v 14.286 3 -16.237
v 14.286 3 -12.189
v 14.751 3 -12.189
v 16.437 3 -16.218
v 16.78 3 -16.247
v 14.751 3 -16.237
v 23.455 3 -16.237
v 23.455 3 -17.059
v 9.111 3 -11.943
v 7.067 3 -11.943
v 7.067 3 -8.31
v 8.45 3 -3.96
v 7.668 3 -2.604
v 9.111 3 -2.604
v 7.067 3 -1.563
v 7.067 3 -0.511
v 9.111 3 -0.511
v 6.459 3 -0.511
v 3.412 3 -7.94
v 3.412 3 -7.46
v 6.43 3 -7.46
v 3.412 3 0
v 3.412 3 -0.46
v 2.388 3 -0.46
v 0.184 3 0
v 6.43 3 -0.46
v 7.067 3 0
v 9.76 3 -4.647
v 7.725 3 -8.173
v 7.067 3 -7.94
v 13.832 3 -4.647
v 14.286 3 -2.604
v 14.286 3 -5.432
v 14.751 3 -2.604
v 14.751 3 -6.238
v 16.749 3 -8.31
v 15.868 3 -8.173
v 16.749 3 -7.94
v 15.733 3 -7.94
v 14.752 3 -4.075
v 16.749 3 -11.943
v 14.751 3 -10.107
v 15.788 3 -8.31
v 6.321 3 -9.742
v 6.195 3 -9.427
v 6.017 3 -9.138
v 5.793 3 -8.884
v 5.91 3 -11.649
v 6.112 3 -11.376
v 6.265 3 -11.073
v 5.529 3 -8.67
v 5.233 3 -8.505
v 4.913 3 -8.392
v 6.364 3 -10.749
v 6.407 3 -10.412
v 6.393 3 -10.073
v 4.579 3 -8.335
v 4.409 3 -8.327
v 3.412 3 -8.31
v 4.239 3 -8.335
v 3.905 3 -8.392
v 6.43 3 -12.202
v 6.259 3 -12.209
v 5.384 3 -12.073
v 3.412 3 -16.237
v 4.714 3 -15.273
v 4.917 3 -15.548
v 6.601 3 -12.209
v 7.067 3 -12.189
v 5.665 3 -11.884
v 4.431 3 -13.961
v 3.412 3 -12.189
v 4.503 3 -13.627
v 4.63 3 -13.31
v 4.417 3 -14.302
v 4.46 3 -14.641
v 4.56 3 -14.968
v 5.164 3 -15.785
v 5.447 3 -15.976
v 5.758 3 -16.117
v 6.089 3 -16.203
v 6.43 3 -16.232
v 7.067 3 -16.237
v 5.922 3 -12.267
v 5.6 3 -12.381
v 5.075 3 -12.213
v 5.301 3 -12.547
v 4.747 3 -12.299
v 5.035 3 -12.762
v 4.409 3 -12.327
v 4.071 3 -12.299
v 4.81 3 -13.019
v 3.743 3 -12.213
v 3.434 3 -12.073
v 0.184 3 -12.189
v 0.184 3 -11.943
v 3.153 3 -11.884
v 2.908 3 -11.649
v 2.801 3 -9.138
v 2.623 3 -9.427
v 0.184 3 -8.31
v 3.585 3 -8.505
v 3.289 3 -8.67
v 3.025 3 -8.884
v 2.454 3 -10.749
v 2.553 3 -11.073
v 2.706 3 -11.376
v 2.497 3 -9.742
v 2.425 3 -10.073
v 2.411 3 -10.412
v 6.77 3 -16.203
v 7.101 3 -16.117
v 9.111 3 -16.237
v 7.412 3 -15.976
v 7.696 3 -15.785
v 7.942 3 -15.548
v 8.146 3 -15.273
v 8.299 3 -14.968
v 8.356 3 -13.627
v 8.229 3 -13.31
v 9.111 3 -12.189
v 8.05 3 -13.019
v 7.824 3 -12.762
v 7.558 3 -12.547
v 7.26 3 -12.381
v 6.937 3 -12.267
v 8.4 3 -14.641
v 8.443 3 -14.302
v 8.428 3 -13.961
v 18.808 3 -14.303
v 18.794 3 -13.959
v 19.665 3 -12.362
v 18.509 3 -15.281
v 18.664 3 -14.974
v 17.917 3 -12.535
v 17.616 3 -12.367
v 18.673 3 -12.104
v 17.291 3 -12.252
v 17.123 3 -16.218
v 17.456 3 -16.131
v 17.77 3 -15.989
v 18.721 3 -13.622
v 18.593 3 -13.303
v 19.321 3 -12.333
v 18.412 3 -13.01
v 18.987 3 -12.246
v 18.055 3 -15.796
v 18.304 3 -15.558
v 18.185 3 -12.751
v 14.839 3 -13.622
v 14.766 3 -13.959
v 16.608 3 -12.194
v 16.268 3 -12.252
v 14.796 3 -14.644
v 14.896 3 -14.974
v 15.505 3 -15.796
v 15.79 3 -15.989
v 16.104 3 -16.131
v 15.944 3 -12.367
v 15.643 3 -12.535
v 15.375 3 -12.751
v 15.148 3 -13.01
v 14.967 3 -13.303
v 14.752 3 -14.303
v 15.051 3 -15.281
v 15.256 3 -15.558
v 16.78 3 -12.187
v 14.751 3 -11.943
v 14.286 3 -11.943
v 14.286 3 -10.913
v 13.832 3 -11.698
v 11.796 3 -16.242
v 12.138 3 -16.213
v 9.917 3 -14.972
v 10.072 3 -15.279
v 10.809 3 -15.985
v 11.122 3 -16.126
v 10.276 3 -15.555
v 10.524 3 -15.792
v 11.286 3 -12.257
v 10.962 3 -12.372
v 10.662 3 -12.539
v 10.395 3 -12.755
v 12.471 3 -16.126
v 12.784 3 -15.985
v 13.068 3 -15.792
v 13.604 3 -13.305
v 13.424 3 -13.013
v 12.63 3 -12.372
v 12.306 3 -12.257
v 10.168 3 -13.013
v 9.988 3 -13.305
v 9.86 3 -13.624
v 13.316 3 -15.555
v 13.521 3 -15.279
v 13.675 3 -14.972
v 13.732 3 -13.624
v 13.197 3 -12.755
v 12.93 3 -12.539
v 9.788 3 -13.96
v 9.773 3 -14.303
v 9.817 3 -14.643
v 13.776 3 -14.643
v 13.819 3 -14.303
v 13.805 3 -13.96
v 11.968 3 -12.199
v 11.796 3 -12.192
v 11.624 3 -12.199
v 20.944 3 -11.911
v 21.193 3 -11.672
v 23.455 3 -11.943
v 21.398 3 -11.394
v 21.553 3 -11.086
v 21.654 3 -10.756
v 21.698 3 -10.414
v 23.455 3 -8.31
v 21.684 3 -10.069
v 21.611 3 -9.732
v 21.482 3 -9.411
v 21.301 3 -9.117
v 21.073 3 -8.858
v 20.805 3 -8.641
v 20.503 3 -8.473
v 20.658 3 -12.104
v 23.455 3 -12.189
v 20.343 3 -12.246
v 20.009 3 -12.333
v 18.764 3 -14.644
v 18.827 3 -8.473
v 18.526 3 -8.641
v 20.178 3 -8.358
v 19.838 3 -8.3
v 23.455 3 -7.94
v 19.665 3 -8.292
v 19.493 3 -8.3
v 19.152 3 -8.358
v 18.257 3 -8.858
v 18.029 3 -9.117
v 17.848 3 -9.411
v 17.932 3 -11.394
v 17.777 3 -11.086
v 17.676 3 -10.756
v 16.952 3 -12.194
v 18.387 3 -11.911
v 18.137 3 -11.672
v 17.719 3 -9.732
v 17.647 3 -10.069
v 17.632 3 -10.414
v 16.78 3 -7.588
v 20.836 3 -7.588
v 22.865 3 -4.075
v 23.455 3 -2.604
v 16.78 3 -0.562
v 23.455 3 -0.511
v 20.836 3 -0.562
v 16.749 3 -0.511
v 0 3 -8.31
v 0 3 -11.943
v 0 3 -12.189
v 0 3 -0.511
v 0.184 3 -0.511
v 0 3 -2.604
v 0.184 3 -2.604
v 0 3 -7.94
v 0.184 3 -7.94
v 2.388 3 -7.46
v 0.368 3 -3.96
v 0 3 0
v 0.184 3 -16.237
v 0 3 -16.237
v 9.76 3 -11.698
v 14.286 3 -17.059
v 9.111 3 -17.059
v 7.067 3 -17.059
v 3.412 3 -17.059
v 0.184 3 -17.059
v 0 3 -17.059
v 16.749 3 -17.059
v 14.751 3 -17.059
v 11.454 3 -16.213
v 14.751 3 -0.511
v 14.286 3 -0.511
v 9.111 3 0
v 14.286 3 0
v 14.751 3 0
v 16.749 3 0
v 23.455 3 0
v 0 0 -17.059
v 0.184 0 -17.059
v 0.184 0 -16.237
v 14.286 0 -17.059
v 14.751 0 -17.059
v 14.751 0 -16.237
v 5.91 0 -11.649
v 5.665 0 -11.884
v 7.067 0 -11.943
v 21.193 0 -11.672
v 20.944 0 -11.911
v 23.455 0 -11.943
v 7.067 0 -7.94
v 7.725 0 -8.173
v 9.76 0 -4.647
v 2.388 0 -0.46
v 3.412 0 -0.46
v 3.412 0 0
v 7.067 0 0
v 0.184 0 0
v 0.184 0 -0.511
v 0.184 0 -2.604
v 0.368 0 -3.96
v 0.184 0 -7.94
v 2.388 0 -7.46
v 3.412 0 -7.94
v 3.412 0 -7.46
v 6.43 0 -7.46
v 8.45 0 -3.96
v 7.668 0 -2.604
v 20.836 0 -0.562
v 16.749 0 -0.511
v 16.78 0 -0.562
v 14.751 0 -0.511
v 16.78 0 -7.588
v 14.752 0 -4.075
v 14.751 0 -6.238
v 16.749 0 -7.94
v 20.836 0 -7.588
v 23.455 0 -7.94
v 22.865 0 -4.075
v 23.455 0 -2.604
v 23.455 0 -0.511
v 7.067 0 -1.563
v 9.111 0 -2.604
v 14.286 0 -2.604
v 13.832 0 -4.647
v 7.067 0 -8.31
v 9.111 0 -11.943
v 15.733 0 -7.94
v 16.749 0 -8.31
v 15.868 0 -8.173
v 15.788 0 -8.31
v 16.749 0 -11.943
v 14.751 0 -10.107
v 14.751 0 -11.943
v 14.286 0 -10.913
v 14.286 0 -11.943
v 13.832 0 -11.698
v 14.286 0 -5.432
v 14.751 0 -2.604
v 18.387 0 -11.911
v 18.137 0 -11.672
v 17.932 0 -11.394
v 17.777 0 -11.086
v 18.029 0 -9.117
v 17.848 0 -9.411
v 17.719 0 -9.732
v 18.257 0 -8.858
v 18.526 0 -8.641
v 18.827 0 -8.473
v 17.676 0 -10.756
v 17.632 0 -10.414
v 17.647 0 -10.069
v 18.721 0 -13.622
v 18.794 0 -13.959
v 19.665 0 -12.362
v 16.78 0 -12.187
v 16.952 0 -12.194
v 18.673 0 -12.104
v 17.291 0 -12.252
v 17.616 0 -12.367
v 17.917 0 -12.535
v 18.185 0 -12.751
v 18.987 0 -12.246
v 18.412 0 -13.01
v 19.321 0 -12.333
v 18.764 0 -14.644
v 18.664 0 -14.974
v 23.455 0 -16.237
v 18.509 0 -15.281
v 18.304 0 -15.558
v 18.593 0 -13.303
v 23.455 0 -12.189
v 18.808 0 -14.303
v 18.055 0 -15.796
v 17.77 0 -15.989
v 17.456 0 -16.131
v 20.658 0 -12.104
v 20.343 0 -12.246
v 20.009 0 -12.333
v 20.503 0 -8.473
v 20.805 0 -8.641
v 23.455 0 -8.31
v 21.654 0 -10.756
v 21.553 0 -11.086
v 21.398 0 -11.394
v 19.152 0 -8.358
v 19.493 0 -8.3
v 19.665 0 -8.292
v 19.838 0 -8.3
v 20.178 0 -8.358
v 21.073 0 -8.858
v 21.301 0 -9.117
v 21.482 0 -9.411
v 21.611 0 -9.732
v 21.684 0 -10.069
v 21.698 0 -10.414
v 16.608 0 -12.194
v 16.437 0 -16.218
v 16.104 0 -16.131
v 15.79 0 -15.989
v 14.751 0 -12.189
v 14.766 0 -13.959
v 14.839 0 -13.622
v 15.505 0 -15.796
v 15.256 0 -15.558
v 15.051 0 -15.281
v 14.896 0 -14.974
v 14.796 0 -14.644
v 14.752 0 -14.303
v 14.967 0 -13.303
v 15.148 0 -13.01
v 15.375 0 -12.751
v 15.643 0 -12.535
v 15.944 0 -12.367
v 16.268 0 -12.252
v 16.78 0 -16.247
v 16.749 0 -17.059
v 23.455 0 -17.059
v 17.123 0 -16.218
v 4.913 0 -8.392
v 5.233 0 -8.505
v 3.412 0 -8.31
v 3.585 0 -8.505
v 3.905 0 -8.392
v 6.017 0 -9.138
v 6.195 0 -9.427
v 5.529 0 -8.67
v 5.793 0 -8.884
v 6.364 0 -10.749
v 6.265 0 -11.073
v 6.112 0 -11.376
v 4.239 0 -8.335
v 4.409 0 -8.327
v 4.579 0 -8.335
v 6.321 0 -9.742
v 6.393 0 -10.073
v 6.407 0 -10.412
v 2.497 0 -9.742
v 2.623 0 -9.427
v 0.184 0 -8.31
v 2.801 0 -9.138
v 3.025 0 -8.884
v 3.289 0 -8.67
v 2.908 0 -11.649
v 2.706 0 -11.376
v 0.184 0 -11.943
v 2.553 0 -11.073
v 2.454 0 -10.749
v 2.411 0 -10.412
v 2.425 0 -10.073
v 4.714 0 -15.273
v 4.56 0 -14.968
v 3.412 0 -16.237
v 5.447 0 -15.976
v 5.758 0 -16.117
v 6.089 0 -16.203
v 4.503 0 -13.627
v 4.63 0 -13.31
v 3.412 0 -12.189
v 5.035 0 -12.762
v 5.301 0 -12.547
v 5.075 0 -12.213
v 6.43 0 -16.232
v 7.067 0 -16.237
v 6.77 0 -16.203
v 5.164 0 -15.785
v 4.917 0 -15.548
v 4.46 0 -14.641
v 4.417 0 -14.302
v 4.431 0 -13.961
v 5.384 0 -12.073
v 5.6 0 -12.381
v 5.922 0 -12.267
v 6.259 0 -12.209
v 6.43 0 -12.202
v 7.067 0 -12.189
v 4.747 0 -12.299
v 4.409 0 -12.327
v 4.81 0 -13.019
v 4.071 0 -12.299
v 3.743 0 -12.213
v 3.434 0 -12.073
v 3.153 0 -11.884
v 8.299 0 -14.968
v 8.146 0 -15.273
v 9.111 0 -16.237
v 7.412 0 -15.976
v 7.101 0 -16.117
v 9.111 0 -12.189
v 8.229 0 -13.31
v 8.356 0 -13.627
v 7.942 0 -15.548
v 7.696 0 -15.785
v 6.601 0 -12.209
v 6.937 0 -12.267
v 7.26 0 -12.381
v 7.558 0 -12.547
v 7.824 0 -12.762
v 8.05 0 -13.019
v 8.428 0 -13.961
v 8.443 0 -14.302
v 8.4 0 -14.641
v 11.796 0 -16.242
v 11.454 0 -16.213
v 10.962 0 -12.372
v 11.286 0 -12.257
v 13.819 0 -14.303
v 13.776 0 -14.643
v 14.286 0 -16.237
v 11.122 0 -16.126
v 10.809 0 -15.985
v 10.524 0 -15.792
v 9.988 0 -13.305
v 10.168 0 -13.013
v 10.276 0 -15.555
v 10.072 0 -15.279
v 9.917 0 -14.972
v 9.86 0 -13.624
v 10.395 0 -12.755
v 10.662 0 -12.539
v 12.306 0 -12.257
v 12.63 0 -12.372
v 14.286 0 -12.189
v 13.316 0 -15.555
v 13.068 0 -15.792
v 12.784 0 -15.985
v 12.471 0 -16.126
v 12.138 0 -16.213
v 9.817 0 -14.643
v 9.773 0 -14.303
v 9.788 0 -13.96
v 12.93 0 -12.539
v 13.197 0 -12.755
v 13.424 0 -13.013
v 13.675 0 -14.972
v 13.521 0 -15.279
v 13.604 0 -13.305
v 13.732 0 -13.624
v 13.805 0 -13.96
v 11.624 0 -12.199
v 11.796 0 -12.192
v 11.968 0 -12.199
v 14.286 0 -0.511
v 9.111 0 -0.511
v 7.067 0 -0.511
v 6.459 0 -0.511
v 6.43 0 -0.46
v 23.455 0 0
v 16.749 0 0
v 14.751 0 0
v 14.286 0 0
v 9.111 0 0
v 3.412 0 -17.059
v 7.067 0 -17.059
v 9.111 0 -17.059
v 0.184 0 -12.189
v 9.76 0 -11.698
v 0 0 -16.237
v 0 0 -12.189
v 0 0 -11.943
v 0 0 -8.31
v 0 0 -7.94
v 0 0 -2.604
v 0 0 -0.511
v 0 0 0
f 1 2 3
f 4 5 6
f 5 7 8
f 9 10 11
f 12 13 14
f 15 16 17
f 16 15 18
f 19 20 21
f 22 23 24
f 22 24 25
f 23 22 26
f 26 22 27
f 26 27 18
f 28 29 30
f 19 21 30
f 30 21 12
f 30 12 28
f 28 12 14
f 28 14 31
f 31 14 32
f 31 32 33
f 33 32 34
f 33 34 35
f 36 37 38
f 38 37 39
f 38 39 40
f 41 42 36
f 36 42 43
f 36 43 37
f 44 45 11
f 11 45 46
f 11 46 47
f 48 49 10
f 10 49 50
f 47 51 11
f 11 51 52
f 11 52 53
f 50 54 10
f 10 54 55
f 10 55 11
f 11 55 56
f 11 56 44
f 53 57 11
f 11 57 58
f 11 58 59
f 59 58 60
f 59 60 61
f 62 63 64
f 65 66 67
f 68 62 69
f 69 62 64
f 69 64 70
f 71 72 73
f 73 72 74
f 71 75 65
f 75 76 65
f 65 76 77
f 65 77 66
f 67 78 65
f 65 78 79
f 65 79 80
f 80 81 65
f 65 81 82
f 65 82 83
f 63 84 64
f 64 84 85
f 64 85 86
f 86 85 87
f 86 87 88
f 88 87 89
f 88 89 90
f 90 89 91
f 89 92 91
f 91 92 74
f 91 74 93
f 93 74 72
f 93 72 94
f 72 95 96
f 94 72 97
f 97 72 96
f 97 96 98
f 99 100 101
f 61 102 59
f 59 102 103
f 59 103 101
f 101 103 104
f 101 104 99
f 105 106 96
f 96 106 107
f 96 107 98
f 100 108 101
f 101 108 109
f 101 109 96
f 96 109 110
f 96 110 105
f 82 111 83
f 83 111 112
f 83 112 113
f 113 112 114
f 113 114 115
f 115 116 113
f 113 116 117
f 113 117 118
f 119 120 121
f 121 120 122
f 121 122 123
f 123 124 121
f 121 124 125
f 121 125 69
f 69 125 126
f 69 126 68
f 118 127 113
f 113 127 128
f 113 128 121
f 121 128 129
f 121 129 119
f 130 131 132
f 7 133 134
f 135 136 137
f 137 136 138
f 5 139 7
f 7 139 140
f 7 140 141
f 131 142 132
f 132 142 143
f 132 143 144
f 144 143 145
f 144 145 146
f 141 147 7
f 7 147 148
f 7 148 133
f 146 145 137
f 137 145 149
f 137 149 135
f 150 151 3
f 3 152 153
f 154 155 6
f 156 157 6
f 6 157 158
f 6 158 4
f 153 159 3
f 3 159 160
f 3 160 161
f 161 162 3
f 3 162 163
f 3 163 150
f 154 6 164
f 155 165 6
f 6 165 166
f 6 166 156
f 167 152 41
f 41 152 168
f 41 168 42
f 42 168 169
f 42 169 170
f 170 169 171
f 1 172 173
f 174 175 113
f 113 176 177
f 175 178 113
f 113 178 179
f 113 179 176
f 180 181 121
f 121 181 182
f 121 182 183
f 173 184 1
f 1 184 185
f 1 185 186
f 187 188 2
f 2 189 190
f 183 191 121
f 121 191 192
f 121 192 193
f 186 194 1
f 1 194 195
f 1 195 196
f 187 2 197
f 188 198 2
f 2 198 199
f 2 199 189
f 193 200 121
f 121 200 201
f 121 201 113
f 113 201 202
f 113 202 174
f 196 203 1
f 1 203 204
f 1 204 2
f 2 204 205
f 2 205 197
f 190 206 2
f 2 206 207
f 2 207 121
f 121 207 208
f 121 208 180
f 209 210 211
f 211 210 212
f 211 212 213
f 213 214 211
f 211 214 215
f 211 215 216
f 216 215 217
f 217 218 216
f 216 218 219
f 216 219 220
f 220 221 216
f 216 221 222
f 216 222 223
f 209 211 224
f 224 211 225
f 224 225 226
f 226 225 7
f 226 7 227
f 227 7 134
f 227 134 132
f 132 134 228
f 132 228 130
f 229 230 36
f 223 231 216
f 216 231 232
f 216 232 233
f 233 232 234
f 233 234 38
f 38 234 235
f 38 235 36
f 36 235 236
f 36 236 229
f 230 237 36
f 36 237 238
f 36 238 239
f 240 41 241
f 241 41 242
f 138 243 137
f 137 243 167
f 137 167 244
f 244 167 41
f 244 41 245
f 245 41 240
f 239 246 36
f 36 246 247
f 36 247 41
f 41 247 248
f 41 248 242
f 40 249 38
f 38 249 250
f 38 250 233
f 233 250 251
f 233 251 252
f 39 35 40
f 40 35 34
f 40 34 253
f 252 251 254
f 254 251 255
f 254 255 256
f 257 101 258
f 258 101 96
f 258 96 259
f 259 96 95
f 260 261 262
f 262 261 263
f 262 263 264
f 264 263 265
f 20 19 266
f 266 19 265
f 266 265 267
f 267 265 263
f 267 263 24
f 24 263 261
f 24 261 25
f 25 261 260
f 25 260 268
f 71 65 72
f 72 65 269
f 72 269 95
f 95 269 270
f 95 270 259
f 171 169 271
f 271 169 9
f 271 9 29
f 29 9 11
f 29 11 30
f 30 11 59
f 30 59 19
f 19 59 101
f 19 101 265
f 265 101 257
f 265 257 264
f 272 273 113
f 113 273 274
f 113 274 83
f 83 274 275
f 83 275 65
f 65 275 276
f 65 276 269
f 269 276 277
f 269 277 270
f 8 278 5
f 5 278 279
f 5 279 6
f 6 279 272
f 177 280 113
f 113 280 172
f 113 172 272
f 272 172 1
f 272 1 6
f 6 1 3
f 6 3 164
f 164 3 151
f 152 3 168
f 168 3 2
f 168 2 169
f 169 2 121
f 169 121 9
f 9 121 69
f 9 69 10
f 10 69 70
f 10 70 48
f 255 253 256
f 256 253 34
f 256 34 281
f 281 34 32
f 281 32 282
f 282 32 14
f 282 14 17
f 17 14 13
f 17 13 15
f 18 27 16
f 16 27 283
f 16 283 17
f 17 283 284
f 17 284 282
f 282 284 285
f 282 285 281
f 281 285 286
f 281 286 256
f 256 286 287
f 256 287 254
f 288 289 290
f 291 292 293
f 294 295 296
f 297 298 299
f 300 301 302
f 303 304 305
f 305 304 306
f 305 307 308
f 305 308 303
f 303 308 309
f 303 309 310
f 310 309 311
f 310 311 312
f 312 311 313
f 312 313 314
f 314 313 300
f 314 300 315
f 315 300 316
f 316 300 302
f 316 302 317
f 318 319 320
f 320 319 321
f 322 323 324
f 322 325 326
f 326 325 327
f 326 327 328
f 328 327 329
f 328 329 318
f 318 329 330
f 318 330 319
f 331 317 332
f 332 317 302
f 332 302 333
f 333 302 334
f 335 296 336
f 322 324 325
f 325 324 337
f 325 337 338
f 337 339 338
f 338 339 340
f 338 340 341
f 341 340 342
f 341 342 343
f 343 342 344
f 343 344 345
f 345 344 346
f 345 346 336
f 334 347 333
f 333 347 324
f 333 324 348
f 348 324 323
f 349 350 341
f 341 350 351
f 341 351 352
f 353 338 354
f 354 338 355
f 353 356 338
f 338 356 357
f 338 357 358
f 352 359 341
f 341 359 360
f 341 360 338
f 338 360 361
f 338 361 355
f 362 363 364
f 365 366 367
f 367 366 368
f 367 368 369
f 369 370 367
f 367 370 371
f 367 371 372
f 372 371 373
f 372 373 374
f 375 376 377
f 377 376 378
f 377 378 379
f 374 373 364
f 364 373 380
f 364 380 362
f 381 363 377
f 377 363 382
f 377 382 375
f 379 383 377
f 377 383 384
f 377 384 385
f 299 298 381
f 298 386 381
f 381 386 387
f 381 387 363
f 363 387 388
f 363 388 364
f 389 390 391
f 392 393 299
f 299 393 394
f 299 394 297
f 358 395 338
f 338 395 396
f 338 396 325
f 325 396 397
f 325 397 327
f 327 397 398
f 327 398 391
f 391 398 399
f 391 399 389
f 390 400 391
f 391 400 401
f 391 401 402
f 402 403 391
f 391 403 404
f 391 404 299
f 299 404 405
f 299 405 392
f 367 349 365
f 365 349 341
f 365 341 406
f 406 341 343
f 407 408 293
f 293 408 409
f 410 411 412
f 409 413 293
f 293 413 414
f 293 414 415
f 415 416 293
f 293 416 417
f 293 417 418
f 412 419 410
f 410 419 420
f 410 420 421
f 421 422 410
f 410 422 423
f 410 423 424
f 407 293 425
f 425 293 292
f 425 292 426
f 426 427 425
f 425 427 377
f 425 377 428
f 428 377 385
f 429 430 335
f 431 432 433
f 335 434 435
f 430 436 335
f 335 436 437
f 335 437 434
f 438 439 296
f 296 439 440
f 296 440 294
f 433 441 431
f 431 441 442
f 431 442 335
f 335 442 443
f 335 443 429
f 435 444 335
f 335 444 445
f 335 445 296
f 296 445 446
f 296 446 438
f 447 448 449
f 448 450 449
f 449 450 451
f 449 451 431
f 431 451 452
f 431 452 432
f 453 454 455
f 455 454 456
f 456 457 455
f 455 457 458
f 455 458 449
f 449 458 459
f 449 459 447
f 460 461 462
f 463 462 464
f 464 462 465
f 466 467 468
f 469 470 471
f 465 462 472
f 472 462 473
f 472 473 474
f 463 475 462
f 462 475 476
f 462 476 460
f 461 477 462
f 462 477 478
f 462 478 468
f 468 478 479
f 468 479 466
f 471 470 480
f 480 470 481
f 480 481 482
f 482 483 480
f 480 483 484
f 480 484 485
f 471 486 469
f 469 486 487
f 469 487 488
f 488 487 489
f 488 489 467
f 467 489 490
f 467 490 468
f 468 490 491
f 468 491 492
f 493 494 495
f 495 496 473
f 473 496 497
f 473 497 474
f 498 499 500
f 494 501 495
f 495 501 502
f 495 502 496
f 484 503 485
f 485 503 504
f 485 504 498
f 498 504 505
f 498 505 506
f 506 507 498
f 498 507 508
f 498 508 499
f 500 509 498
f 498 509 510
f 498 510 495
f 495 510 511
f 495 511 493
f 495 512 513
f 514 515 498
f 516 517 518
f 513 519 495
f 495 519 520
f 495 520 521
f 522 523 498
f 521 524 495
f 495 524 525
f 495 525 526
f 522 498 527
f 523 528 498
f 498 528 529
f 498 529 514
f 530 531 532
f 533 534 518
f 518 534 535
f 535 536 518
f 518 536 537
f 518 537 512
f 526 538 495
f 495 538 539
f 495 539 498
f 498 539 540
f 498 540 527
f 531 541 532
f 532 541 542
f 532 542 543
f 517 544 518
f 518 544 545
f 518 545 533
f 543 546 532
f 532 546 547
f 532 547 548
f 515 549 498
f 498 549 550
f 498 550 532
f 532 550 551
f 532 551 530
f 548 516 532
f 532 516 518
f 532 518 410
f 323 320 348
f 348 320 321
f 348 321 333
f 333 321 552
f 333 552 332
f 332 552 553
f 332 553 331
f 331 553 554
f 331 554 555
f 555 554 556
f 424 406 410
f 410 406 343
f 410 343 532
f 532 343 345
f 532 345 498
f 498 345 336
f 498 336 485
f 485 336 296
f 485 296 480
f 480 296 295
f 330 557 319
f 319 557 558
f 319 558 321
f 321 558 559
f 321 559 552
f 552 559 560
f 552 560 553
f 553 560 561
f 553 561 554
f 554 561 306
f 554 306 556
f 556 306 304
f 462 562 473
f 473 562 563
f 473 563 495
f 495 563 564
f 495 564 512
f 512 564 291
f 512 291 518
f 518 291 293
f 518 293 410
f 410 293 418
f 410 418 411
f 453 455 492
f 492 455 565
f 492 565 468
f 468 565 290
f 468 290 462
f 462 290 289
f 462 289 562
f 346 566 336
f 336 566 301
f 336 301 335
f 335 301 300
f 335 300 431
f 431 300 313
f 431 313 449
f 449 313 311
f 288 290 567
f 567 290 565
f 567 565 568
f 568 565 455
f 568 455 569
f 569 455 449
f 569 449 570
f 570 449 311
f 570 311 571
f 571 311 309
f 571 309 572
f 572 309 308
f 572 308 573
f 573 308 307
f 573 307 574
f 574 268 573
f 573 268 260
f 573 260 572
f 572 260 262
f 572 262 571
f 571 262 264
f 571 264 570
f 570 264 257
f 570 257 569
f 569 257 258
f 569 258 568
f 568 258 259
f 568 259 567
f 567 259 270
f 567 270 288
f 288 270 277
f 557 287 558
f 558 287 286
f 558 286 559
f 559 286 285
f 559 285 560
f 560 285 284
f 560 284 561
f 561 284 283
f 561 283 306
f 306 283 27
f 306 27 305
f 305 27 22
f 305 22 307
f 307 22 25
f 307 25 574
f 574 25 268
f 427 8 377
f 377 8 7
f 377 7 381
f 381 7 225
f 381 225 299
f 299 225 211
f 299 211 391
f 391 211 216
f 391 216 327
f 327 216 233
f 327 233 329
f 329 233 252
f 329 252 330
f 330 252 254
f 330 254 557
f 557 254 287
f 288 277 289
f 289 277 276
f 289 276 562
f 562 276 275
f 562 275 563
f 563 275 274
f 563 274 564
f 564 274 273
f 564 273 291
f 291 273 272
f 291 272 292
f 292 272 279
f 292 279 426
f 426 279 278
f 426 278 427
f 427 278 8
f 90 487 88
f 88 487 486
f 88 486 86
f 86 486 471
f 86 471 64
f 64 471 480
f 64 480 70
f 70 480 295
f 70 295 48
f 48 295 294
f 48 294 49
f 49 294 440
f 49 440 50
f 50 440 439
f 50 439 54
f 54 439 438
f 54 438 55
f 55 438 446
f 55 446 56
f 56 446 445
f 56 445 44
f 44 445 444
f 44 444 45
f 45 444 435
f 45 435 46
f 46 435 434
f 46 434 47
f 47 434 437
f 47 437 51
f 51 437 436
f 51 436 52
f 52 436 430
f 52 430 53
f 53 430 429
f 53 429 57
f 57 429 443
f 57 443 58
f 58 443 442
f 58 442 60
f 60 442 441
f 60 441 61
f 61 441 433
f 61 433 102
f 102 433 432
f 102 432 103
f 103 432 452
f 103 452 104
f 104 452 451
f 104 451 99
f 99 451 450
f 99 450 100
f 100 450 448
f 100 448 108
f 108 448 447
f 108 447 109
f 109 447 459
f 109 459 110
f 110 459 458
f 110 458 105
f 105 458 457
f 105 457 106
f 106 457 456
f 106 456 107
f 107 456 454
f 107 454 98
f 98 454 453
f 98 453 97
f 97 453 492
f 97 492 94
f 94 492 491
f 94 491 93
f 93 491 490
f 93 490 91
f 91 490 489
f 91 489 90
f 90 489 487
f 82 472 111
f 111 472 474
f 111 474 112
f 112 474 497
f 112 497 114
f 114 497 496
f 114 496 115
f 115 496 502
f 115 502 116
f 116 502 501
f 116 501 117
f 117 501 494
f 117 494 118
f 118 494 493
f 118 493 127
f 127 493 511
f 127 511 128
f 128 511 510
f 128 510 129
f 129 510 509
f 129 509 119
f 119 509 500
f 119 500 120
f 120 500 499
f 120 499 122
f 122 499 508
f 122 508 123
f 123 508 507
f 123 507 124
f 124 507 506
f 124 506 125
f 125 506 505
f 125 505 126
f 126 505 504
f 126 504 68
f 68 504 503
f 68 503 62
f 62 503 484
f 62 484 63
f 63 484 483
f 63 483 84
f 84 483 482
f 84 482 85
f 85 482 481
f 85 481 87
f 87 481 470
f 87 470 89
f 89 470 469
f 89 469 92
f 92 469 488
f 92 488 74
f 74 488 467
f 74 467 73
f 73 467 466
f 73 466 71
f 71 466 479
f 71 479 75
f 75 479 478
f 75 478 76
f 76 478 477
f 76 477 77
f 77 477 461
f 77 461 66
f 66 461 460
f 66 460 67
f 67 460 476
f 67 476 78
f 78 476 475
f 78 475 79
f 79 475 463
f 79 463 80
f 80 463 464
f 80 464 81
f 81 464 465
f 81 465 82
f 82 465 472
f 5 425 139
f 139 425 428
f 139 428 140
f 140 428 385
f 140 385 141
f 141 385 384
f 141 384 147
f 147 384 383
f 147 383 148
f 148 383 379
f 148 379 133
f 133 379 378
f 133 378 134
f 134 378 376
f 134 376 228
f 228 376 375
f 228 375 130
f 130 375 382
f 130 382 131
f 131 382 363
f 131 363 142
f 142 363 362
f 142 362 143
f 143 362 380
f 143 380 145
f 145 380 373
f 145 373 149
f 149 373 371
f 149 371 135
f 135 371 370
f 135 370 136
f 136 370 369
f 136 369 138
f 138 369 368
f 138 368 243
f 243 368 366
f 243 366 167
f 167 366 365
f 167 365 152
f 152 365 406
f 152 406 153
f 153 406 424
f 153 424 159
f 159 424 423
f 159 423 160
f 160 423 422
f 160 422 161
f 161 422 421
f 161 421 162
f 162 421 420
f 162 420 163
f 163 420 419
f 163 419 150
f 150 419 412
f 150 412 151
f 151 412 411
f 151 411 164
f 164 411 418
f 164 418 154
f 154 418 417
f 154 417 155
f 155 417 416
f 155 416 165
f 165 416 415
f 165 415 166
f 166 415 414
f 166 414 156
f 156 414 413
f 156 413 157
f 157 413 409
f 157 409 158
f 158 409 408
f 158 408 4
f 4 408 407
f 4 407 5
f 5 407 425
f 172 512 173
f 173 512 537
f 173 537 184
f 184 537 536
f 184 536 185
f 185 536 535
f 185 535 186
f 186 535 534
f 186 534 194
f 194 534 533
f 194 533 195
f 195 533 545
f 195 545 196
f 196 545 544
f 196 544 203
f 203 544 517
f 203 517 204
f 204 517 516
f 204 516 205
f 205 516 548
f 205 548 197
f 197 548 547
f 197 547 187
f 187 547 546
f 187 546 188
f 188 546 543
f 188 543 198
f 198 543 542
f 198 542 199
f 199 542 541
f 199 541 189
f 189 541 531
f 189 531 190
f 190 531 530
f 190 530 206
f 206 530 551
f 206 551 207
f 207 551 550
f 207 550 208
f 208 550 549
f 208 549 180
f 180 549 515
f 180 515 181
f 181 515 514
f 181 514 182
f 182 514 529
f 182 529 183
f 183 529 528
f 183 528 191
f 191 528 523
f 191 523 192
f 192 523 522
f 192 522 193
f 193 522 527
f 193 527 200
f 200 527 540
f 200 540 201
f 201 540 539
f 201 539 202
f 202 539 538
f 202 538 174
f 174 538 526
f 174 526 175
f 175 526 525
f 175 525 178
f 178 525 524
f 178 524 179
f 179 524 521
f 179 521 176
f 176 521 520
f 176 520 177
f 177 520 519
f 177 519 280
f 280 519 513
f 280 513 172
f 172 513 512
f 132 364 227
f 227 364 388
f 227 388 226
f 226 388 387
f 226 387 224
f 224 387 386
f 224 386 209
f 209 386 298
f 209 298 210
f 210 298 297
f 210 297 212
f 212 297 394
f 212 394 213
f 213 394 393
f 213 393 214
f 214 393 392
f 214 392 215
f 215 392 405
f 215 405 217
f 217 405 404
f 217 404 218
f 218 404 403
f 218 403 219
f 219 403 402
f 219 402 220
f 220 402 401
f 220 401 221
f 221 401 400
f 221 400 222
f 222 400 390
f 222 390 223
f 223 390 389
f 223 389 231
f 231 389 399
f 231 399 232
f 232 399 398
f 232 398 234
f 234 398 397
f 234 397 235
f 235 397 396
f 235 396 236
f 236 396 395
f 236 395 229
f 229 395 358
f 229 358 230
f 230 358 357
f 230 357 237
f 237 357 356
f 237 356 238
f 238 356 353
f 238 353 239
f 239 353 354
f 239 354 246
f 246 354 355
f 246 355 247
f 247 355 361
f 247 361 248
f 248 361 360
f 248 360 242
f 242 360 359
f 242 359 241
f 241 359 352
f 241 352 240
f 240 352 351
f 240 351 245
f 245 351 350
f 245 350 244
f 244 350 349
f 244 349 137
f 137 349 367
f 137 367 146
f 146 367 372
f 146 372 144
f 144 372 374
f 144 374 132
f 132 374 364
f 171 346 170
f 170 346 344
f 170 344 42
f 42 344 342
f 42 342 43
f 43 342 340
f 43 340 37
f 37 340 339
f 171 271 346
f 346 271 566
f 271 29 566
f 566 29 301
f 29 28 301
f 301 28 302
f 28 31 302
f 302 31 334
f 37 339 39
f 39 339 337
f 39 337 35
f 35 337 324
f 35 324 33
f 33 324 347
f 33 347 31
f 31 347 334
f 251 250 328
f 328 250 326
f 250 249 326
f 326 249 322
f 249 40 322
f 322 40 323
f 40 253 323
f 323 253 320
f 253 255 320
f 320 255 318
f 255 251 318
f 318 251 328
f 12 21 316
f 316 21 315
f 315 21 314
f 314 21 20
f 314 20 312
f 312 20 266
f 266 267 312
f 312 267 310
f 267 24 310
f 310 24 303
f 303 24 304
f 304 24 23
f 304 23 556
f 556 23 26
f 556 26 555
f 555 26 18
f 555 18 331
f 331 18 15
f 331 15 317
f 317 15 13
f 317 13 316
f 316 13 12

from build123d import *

# Parameters (mm, degrees)
SKETCH1_W           = 23.454698607
SKETCH1_H           = 17.05901257
SKETCH1_R           = 2
SKETCH1_R_2         = 2.015
SKETCH1_R_3         = 2.03
SKETCH1_R_4         = 2.025
SKETCH1_R_5         = 2.035
BOSS_EXTRUDE1_DEPTH = 3


with BuildPart() as part:
    # Sketch1 → Boss-Extrude1 (new body)
    with BuildSketch(Plane(origin=(0, 0, 0), x_dir=(1, 0, 0), z_dir=(0, 1, 0))):
        with Locations((11.727349304, 8.529506285)):
            Rectangle(SKETCH1_W, SKETCH1_H)
        with Locations((4.409007026, 10.327471093)):
            Circle(SKETCH1_R, mode=Mode.SUBTRACT)
        with Locations((6.429732026, 14.216806169)):
            Circle(SKETCH1_R_2, mode=Mode.SUBTRACT)
        with Locations((16.77995554, 14.216806169)):
            Circle(SKETCH1_R_3, mode=Mode.SUBTRACT)
        with Locations((11.796158167, 14.216806169)):
            Circle(SKETCH1_R_4, mode=Mode.SUBTRACT)
        with Locations((19.665090072, 10.327471093)):
            Circle(SKETCH1_R_5, mode=Mode.SUBTRACT)
        Polygon((6.429732026, 7.459514329), (2.388282026, 7.459514329), (0.367557026, 3.959515961), (2.388282026, 0.459517593), (6.429732026, 0.459517593), (8.450457026, 3.959515961), align=None, mode=Mode.SUBTRACT)
        Polygon((13.831883167, 11.698479726), (9.760433167, 11.698479726), (7.724708167, 8.172500596), (9.760433167, 4.646521466), (13.831883167, 4.646521466), (15.867608167, 8.172500596), align=None, mode=Mode.SUBTRACT)
        Polygon((20.83640554, 7.587928947), (16.77995554, 7.587928947), (14.75173054, 4.074940198), (16.77995554, 0.561951448), (20.83640554, 0.561951448), (22.86463054, 4.074940198), align=None, mode=Mode.SUBTRACT)
    extrude(amount=BOSS_EXTRUDE1_DEPTH)


solid = part.part
